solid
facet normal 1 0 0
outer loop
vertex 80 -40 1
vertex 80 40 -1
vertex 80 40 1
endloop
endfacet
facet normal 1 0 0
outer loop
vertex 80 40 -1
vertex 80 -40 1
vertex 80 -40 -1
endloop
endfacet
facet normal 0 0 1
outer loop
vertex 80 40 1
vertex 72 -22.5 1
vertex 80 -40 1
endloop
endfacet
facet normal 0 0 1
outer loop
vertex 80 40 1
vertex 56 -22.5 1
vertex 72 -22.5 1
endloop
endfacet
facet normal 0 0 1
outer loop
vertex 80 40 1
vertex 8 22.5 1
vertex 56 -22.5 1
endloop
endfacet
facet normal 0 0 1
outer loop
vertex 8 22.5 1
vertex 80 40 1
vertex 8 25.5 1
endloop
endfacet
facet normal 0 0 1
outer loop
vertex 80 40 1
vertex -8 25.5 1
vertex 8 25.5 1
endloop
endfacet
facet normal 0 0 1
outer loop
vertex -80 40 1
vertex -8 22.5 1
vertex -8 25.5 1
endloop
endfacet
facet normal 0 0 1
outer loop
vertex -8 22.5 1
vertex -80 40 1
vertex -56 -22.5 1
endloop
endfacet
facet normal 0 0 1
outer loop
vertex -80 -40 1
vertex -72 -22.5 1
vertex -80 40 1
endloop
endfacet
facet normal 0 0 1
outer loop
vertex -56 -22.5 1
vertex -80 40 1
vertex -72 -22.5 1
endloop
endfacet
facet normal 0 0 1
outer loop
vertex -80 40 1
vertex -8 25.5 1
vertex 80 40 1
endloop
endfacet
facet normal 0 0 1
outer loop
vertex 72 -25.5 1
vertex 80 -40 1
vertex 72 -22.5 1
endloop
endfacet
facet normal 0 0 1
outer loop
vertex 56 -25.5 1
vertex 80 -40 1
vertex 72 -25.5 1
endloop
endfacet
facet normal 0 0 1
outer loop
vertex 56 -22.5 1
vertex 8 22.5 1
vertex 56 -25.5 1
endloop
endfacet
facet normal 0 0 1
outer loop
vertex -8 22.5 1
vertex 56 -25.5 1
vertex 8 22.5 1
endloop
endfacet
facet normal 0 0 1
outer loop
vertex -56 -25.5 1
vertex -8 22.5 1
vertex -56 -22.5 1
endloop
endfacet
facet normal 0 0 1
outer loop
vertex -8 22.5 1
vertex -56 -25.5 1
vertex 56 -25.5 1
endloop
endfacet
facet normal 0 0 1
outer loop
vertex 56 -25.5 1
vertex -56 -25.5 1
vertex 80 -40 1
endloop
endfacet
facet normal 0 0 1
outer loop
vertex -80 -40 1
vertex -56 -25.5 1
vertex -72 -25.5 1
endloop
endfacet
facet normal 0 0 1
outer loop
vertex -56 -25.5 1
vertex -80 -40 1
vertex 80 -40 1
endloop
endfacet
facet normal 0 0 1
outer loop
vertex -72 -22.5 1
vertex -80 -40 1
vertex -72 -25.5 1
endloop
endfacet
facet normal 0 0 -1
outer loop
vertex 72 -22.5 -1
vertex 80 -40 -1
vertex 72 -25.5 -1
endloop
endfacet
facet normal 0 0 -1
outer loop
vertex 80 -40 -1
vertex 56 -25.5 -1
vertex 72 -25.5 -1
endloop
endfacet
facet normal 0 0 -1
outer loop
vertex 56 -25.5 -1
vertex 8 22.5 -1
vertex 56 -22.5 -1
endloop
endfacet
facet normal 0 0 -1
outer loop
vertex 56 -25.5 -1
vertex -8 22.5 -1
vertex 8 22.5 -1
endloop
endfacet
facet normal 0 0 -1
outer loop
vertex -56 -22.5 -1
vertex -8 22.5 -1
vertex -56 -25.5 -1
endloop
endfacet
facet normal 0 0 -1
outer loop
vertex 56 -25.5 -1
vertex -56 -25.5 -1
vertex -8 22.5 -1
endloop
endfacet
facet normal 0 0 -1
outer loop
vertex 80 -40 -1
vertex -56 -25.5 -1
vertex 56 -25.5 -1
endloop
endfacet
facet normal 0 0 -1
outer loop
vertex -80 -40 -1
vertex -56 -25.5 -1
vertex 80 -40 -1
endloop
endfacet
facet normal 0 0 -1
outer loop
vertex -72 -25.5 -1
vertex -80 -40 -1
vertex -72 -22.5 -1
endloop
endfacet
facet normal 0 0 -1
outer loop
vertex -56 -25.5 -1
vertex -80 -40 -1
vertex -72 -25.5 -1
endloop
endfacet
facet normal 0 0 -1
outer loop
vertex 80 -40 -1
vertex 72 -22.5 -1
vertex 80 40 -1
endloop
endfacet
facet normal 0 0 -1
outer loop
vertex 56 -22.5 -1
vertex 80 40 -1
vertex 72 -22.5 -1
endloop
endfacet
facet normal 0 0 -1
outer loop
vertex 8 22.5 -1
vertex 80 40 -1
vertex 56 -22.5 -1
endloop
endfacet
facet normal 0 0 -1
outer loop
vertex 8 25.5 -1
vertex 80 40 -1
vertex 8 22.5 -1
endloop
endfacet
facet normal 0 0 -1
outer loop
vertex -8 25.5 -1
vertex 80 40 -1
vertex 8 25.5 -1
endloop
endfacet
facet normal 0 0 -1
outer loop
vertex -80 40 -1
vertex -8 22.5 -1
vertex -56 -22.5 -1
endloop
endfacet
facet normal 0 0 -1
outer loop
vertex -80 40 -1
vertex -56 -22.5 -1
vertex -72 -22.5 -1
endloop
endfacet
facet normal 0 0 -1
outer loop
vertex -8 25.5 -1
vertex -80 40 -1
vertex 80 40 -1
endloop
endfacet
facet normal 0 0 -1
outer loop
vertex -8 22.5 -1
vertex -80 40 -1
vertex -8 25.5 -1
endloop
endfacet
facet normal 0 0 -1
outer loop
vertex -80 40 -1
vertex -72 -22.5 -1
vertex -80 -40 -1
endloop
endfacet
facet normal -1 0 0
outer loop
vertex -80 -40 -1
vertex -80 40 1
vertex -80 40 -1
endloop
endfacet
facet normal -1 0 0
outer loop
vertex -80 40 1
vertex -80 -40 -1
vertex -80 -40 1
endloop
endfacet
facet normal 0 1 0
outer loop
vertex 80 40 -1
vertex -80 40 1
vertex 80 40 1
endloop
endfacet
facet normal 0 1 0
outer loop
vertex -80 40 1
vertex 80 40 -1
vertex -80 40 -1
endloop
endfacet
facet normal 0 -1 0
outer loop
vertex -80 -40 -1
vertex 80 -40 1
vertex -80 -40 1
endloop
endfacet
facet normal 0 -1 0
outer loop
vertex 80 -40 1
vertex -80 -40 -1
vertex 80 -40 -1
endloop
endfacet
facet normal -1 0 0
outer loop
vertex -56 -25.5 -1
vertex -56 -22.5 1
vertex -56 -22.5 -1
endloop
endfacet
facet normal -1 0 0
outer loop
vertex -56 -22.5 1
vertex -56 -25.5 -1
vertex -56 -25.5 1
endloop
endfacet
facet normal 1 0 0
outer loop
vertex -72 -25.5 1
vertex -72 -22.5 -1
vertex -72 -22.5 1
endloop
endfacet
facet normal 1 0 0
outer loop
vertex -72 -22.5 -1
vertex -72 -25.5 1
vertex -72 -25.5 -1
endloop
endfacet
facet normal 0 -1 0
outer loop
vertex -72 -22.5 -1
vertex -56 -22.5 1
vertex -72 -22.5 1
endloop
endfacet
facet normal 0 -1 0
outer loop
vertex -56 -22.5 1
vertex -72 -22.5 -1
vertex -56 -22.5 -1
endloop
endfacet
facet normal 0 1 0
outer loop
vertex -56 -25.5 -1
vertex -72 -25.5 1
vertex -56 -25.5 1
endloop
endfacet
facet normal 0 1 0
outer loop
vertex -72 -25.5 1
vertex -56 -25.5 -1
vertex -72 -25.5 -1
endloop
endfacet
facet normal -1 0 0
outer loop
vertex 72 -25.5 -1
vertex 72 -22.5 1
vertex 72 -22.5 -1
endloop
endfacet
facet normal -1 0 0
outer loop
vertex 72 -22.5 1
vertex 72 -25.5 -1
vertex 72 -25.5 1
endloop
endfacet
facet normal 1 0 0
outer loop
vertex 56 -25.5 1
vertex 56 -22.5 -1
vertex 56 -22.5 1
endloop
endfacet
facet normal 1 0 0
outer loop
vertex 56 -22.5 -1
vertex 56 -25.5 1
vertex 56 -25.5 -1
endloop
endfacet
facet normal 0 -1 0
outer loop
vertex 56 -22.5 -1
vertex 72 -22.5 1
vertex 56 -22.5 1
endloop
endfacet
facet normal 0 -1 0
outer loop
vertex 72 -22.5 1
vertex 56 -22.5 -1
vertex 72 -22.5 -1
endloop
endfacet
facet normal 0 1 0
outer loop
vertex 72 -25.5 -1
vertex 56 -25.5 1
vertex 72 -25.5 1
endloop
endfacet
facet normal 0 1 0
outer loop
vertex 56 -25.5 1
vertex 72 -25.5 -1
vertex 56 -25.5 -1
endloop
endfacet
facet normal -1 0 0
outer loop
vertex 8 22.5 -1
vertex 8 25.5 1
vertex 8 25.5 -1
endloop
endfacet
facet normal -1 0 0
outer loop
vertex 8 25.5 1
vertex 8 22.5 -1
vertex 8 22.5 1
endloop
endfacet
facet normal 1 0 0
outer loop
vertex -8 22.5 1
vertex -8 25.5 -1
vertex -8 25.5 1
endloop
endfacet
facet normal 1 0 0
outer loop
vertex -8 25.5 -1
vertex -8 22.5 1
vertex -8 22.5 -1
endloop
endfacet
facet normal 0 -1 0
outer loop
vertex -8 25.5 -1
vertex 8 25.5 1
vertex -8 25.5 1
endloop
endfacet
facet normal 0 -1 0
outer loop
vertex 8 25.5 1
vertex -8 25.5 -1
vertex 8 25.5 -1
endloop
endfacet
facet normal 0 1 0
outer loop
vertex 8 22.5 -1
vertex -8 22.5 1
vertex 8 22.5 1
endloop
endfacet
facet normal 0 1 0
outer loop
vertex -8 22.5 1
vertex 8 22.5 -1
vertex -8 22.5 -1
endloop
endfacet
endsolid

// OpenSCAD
// ========================================
// a 16 x 8 x 0.2 cm plate with three 1.6 x 0.3 cm slots
// NeuroCAD canonical IR; dimensions are millimetres
// ========================================
$fn = 48;

difference() {
  cube(size=[160, 80, 2], center=true);
  translate([-64, -24, 0]) {
    cube(size=[16, 3, 4], center=true);
  }
  translate([64, -24, 0]) {
    cube(size=[16, 3, 4], center=true);
  }
  translate([0, 24, 0]) {
    cube(size=[16, 3, 4], center=true);
  }
}
